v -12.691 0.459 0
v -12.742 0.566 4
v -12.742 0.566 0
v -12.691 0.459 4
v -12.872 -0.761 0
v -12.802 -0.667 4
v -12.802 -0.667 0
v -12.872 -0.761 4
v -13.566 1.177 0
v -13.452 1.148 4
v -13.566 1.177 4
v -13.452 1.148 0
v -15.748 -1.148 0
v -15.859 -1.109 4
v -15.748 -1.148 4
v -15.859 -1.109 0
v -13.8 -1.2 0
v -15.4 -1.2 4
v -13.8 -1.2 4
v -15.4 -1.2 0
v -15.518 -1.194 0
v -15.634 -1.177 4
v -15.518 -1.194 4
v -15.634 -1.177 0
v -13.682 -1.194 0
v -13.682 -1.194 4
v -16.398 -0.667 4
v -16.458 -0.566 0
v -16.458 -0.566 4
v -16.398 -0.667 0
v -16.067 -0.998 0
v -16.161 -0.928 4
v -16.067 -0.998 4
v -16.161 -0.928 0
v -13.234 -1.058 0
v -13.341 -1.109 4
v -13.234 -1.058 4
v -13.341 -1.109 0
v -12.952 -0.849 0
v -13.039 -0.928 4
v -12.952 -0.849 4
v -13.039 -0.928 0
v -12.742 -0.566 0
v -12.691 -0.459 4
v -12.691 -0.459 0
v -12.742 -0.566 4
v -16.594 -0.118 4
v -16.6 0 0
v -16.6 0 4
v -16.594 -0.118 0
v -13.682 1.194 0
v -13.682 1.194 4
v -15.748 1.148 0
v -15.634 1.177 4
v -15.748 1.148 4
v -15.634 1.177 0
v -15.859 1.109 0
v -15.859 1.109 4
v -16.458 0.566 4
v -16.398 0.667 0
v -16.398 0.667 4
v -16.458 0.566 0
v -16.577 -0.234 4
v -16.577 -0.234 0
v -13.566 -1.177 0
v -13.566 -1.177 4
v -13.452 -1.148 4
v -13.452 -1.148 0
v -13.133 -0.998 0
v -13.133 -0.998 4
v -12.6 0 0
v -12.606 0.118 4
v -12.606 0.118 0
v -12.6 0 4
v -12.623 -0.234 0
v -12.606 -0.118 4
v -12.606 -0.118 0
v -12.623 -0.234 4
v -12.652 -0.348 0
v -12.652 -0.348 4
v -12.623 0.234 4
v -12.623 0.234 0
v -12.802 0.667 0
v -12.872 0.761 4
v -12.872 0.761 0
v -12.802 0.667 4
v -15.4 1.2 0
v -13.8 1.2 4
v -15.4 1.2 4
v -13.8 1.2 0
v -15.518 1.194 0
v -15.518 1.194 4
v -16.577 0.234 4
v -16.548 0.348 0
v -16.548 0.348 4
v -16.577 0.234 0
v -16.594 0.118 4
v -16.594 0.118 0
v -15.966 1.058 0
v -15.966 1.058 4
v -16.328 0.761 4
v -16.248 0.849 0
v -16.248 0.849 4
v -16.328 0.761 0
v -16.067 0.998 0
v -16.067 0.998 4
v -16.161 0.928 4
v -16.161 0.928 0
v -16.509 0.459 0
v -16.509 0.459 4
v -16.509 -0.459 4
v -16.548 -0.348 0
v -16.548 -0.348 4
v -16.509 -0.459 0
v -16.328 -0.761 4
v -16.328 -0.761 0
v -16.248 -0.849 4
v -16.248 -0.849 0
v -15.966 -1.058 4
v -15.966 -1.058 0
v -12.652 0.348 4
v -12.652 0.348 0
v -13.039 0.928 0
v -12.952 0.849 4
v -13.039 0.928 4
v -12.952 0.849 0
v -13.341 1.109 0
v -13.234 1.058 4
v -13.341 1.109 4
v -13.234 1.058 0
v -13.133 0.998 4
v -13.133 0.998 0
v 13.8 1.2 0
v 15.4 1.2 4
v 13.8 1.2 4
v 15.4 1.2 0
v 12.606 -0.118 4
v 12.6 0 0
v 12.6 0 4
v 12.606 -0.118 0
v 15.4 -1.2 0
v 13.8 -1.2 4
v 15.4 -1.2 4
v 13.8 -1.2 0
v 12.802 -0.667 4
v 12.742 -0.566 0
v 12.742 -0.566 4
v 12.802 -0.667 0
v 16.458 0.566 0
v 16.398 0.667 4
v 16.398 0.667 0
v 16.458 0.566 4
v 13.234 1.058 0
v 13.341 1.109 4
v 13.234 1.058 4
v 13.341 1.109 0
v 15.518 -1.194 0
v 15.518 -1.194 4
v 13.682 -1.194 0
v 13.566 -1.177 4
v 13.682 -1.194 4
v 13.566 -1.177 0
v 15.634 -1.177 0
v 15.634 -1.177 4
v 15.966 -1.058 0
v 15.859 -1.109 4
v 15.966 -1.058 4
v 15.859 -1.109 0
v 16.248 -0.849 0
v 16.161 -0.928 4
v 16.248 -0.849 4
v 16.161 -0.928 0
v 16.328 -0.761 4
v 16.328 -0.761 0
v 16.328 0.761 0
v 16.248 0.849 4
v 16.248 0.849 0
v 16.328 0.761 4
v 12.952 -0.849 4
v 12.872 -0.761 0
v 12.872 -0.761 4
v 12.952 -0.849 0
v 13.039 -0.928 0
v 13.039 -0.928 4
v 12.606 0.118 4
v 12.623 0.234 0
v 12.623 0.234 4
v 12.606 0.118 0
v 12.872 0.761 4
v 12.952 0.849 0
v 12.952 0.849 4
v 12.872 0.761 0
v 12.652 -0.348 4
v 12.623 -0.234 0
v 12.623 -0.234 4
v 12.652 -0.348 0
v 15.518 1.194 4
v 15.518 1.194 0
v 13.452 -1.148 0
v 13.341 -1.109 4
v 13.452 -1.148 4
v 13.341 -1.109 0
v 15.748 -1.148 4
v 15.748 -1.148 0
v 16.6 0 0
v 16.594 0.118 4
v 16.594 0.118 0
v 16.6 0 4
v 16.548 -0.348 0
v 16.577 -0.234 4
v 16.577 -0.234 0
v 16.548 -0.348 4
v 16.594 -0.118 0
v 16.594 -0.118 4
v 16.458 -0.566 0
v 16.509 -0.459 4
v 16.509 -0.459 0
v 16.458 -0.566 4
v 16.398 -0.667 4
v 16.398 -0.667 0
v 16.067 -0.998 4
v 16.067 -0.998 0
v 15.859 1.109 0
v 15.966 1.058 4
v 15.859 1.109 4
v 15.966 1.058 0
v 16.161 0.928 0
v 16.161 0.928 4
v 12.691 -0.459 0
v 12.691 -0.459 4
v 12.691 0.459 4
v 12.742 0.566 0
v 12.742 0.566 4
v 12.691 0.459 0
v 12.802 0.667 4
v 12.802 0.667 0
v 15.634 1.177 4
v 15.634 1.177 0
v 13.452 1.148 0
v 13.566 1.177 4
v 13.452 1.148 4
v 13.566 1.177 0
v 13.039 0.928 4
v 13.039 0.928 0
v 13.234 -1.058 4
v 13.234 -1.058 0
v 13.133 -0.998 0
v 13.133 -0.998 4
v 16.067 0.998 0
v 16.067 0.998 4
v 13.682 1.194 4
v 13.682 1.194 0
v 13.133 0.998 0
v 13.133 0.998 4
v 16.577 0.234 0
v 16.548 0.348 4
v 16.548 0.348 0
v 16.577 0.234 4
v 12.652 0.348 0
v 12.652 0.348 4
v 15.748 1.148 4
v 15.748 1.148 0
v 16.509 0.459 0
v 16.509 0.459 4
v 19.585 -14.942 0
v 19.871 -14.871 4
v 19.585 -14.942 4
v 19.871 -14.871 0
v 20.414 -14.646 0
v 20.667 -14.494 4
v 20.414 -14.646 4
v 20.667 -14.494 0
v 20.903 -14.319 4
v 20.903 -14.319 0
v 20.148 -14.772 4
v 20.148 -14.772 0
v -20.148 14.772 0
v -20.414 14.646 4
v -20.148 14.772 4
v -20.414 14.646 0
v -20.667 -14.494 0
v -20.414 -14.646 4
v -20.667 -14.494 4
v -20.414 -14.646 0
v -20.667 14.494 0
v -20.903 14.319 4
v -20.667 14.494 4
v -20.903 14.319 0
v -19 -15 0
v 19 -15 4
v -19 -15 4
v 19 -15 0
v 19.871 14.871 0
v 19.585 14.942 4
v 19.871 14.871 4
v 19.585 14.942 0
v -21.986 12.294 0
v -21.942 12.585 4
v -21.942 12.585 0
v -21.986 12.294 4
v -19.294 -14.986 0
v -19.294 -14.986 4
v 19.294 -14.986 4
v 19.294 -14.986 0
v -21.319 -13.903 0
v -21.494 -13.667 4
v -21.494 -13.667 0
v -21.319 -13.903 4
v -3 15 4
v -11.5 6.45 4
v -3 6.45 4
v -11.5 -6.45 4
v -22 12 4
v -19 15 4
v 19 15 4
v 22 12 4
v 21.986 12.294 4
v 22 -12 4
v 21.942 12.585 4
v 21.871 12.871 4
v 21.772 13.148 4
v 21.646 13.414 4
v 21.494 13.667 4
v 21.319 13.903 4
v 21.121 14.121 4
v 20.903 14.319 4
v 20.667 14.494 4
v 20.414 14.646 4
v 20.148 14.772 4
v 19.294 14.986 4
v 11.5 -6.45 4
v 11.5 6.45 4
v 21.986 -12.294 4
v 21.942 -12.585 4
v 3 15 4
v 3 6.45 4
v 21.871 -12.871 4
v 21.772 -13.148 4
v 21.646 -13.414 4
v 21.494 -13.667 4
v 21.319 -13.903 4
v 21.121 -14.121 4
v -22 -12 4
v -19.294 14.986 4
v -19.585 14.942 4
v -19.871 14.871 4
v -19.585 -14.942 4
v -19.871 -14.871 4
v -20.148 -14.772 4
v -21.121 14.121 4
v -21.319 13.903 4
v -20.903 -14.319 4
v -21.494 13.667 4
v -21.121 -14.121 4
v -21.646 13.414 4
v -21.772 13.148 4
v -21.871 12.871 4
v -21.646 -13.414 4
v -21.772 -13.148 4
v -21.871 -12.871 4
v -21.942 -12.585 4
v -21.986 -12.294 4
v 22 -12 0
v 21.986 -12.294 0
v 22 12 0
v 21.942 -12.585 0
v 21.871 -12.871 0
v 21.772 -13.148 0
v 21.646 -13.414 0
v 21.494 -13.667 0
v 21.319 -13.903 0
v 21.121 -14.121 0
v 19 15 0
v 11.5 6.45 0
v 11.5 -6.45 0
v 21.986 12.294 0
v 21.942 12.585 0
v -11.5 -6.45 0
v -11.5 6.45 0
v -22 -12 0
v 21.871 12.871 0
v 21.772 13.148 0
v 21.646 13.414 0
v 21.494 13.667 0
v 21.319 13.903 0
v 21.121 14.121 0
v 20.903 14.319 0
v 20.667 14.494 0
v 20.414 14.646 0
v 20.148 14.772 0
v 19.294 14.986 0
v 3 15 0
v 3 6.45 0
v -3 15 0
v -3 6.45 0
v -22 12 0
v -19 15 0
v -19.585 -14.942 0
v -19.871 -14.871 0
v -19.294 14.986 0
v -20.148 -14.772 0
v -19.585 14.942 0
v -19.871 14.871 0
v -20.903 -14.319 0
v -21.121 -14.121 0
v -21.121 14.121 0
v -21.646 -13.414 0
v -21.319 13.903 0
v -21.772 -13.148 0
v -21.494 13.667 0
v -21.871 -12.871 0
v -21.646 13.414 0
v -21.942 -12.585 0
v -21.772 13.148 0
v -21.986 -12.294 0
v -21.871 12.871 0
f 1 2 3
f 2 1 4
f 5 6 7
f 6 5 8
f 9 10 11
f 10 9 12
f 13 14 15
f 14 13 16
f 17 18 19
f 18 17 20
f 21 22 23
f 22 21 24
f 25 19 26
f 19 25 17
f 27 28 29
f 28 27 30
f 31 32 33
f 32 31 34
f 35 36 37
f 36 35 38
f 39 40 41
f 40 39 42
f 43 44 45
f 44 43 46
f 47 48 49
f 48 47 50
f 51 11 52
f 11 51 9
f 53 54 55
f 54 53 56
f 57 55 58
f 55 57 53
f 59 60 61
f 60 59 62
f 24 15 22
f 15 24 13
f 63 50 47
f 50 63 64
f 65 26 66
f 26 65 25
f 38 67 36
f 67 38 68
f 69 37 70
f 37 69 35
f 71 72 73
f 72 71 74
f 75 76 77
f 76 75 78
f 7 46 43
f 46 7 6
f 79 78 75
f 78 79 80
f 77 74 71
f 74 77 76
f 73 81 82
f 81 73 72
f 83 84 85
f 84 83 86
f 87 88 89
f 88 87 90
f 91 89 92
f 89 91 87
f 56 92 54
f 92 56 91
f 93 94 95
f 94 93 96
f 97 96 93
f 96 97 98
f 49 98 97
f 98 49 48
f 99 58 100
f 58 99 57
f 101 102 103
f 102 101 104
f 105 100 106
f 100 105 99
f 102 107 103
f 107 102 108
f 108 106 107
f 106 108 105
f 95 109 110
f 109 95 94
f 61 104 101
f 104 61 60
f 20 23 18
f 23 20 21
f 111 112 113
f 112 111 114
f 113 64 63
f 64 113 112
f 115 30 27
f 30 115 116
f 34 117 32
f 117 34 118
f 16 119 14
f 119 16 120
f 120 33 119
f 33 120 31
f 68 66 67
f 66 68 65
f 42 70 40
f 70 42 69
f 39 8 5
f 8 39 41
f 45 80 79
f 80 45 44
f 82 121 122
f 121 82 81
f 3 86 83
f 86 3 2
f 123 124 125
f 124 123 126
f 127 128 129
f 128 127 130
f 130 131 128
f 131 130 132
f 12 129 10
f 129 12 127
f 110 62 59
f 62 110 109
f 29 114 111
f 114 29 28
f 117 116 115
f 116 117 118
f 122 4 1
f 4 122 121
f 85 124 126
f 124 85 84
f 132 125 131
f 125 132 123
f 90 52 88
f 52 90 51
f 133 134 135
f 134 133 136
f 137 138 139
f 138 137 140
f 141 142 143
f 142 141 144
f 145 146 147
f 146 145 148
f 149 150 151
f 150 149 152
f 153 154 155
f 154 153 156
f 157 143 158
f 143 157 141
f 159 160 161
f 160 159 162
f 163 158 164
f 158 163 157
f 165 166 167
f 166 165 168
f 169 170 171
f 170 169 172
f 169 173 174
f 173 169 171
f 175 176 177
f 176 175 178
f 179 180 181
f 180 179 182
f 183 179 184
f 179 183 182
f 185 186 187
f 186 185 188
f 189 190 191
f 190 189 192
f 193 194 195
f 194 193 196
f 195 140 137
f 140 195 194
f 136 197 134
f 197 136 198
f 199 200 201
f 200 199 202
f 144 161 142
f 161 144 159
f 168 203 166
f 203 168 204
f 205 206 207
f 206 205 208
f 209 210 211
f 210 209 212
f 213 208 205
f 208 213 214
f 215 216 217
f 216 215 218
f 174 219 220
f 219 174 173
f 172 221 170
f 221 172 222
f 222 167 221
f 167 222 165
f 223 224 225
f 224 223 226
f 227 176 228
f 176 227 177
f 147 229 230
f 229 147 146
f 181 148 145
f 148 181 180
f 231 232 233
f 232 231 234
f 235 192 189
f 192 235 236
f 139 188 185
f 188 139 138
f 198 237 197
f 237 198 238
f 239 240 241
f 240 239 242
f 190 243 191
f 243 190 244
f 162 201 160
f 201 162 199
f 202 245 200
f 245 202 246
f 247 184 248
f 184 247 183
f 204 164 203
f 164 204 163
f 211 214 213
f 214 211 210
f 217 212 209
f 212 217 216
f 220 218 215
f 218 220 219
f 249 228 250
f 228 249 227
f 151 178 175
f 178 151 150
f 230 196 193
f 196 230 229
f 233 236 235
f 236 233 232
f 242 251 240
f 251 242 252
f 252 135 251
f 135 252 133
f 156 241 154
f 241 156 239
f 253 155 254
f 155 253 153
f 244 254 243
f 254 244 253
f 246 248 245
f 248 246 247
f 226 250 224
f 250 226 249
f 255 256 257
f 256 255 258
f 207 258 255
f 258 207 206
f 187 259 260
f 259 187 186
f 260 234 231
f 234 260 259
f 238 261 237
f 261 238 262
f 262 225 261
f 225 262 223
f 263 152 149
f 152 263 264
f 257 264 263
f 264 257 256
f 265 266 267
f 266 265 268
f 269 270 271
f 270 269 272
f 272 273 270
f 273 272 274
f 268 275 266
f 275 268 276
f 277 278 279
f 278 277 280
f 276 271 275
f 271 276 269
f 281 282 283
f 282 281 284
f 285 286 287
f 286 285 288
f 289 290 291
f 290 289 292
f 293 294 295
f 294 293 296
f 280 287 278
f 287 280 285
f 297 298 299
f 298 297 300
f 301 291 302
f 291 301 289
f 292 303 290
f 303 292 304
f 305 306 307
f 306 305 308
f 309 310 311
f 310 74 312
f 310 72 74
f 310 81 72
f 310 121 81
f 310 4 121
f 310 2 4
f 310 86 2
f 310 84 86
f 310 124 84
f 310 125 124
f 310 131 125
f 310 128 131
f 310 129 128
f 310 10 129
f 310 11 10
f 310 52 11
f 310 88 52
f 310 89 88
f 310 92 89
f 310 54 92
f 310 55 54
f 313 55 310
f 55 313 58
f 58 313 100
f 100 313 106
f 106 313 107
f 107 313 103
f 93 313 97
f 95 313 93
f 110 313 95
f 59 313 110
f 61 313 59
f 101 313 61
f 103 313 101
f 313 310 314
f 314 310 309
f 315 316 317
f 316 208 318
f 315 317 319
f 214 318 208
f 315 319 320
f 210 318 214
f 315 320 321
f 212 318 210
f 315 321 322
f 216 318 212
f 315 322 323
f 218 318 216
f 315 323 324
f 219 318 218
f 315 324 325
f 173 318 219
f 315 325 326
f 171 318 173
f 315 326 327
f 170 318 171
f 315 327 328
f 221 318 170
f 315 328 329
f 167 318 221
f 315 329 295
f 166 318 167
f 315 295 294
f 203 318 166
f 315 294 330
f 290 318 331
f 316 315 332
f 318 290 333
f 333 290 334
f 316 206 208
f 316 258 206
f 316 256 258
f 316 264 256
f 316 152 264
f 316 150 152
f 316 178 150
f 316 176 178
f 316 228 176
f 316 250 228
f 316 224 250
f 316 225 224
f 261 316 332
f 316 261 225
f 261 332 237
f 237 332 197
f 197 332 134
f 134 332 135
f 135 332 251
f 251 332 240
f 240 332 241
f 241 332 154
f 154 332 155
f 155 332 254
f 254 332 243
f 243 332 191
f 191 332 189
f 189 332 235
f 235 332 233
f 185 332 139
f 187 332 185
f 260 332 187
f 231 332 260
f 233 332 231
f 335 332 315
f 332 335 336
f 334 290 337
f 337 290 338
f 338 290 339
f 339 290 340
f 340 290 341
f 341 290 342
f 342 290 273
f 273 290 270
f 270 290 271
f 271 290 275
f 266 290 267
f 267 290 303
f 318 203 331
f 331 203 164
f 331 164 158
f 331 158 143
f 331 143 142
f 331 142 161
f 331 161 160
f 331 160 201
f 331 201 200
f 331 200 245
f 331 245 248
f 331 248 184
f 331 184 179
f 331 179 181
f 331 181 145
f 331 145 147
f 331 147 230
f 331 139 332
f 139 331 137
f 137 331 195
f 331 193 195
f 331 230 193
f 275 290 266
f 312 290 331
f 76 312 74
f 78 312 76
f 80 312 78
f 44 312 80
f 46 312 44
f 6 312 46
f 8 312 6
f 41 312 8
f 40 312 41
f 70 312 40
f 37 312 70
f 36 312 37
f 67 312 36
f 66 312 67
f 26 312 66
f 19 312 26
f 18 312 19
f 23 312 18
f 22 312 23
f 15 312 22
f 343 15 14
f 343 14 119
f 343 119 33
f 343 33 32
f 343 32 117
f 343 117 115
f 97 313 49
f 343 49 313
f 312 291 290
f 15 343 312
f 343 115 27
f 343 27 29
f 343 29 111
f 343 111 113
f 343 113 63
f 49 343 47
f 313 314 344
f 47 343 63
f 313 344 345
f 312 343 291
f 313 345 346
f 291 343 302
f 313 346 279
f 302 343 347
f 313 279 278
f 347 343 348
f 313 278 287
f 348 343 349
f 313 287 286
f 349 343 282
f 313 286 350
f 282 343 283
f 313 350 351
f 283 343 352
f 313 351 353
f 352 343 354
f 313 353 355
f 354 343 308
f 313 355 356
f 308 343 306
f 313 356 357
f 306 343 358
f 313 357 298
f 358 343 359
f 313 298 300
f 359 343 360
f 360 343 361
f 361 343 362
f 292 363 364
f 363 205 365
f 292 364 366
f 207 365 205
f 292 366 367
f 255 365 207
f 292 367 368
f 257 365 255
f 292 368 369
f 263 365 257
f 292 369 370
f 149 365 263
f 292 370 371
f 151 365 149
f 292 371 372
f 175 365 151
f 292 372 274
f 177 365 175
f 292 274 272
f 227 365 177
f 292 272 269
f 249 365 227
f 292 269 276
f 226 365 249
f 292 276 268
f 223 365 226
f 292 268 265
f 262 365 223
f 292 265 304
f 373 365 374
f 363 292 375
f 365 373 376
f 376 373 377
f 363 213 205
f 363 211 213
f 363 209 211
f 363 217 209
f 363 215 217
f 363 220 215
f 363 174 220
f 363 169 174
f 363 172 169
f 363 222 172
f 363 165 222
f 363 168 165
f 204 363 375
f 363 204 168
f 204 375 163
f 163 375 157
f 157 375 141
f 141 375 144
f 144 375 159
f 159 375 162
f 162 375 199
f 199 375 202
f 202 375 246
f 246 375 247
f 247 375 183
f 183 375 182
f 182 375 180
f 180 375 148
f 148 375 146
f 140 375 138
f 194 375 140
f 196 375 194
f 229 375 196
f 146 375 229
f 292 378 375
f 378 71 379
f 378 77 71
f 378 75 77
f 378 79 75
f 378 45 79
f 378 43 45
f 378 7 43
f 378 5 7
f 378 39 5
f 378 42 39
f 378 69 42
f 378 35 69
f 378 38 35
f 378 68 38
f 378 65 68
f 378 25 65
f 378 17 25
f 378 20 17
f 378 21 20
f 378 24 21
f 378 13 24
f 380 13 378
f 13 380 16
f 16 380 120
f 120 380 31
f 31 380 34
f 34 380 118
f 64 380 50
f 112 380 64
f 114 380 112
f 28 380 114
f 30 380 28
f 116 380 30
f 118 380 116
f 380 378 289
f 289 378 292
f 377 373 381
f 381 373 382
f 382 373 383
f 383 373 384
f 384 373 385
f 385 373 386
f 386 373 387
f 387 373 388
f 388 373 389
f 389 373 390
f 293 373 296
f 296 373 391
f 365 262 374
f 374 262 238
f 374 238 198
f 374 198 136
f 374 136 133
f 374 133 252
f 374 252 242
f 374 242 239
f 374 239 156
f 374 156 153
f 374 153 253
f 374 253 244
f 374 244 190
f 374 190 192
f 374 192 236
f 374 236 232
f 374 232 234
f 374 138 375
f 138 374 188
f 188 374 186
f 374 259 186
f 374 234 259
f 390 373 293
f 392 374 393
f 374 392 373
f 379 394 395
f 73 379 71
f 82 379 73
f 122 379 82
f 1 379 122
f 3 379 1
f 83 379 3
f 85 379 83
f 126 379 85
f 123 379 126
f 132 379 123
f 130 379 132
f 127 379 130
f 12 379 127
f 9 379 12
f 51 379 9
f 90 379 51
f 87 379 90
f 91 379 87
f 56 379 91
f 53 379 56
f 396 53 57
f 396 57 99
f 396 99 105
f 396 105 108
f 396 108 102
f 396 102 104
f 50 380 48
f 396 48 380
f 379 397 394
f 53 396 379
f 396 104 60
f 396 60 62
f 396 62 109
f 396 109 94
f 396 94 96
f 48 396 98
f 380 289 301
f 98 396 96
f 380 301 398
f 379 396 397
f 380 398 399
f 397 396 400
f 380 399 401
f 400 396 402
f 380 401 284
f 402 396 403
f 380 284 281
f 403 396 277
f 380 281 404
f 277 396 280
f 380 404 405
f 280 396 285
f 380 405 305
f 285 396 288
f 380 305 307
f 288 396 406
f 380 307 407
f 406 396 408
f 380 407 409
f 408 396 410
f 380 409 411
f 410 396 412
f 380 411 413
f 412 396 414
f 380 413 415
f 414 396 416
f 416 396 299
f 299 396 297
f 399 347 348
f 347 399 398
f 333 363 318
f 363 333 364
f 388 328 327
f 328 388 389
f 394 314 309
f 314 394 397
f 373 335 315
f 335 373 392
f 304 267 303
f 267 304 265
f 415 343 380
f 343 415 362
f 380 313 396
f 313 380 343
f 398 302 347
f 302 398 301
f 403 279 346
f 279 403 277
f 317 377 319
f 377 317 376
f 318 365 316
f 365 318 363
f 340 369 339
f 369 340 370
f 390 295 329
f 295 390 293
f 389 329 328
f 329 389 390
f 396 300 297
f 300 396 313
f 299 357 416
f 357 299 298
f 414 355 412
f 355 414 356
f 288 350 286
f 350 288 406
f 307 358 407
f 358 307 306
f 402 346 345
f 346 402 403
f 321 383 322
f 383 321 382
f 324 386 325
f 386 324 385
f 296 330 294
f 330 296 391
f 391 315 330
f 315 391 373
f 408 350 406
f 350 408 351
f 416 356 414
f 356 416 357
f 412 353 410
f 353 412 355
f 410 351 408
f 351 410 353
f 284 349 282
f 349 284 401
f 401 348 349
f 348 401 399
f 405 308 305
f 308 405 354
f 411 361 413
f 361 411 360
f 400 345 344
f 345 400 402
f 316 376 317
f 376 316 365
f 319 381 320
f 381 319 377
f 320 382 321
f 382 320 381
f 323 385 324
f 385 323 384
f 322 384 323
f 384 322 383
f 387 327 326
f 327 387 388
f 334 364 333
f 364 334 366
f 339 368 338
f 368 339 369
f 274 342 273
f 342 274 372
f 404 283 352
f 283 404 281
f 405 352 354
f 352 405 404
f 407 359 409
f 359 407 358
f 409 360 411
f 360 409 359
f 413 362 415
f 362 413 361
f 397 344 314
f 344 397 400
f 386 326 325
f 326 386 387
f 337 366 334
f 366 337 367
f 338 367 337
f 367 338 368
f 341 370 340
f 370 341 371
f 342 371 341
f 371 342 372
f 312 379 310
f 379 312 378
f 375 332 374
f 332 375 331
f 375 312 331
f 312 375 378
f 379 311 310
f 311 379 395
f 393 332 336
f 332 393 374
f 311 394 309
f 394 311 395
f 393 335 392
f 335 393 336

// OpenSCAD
// V4: screw-retained fit prototype. Units mm. No snap/friction retention.
// Print flat, same orientation used in assembly; ears rest on top at z=4.
// Side cable entry moved to LONG edge to preserve both screw bearing lands.
$fn=64;
body_l=23; body_w=12.9; plate=4;
outer_l=44; outer_w=30; cable_gap=6;
slot_d=2.4; slot_in=13.8; slot_out=15.4;
module capsule(x1,x2,d,h) {
 hull() for(x=[x1,x2]) translate([x,0,-.1]) cylinder(d=d,h=h+.2);
}
difference() {
 linear_extrude(plate)
  offset(r=3) offset(delta=-3) square([outer_l,outer_w],center=true);
 translate([-body_l/2,-body_w/2,-.1]) cube([body_l,body_w,plate+.2]);
 // Route only the loose wire bundle sideways; never pull the plug through.
 translate([-cable_gap/2,0,-.1]) cube([cable_gap,outer_w,plate+.2]);
 for(side=[-1,1]) capsule(side*slot_in,side*slot_out,slot_d,plate);
}
assert(body_l==23 && body_w==12.9,"Keep owner-confirmed aperture");
assert(slot_in-slot_d/2-body_l/2>=1,"Minimum inner slot ligament");
assert(outer_l/2-slot_out-slot_d/2>=5,"Outer screw bearing margin");
assert(outer_w/2-body_w/2>=8,"Continuous back rail width");
assert(cable_gap/2+5<slot_in-slot_d/2,"Cable entry stays away from fasteners");
